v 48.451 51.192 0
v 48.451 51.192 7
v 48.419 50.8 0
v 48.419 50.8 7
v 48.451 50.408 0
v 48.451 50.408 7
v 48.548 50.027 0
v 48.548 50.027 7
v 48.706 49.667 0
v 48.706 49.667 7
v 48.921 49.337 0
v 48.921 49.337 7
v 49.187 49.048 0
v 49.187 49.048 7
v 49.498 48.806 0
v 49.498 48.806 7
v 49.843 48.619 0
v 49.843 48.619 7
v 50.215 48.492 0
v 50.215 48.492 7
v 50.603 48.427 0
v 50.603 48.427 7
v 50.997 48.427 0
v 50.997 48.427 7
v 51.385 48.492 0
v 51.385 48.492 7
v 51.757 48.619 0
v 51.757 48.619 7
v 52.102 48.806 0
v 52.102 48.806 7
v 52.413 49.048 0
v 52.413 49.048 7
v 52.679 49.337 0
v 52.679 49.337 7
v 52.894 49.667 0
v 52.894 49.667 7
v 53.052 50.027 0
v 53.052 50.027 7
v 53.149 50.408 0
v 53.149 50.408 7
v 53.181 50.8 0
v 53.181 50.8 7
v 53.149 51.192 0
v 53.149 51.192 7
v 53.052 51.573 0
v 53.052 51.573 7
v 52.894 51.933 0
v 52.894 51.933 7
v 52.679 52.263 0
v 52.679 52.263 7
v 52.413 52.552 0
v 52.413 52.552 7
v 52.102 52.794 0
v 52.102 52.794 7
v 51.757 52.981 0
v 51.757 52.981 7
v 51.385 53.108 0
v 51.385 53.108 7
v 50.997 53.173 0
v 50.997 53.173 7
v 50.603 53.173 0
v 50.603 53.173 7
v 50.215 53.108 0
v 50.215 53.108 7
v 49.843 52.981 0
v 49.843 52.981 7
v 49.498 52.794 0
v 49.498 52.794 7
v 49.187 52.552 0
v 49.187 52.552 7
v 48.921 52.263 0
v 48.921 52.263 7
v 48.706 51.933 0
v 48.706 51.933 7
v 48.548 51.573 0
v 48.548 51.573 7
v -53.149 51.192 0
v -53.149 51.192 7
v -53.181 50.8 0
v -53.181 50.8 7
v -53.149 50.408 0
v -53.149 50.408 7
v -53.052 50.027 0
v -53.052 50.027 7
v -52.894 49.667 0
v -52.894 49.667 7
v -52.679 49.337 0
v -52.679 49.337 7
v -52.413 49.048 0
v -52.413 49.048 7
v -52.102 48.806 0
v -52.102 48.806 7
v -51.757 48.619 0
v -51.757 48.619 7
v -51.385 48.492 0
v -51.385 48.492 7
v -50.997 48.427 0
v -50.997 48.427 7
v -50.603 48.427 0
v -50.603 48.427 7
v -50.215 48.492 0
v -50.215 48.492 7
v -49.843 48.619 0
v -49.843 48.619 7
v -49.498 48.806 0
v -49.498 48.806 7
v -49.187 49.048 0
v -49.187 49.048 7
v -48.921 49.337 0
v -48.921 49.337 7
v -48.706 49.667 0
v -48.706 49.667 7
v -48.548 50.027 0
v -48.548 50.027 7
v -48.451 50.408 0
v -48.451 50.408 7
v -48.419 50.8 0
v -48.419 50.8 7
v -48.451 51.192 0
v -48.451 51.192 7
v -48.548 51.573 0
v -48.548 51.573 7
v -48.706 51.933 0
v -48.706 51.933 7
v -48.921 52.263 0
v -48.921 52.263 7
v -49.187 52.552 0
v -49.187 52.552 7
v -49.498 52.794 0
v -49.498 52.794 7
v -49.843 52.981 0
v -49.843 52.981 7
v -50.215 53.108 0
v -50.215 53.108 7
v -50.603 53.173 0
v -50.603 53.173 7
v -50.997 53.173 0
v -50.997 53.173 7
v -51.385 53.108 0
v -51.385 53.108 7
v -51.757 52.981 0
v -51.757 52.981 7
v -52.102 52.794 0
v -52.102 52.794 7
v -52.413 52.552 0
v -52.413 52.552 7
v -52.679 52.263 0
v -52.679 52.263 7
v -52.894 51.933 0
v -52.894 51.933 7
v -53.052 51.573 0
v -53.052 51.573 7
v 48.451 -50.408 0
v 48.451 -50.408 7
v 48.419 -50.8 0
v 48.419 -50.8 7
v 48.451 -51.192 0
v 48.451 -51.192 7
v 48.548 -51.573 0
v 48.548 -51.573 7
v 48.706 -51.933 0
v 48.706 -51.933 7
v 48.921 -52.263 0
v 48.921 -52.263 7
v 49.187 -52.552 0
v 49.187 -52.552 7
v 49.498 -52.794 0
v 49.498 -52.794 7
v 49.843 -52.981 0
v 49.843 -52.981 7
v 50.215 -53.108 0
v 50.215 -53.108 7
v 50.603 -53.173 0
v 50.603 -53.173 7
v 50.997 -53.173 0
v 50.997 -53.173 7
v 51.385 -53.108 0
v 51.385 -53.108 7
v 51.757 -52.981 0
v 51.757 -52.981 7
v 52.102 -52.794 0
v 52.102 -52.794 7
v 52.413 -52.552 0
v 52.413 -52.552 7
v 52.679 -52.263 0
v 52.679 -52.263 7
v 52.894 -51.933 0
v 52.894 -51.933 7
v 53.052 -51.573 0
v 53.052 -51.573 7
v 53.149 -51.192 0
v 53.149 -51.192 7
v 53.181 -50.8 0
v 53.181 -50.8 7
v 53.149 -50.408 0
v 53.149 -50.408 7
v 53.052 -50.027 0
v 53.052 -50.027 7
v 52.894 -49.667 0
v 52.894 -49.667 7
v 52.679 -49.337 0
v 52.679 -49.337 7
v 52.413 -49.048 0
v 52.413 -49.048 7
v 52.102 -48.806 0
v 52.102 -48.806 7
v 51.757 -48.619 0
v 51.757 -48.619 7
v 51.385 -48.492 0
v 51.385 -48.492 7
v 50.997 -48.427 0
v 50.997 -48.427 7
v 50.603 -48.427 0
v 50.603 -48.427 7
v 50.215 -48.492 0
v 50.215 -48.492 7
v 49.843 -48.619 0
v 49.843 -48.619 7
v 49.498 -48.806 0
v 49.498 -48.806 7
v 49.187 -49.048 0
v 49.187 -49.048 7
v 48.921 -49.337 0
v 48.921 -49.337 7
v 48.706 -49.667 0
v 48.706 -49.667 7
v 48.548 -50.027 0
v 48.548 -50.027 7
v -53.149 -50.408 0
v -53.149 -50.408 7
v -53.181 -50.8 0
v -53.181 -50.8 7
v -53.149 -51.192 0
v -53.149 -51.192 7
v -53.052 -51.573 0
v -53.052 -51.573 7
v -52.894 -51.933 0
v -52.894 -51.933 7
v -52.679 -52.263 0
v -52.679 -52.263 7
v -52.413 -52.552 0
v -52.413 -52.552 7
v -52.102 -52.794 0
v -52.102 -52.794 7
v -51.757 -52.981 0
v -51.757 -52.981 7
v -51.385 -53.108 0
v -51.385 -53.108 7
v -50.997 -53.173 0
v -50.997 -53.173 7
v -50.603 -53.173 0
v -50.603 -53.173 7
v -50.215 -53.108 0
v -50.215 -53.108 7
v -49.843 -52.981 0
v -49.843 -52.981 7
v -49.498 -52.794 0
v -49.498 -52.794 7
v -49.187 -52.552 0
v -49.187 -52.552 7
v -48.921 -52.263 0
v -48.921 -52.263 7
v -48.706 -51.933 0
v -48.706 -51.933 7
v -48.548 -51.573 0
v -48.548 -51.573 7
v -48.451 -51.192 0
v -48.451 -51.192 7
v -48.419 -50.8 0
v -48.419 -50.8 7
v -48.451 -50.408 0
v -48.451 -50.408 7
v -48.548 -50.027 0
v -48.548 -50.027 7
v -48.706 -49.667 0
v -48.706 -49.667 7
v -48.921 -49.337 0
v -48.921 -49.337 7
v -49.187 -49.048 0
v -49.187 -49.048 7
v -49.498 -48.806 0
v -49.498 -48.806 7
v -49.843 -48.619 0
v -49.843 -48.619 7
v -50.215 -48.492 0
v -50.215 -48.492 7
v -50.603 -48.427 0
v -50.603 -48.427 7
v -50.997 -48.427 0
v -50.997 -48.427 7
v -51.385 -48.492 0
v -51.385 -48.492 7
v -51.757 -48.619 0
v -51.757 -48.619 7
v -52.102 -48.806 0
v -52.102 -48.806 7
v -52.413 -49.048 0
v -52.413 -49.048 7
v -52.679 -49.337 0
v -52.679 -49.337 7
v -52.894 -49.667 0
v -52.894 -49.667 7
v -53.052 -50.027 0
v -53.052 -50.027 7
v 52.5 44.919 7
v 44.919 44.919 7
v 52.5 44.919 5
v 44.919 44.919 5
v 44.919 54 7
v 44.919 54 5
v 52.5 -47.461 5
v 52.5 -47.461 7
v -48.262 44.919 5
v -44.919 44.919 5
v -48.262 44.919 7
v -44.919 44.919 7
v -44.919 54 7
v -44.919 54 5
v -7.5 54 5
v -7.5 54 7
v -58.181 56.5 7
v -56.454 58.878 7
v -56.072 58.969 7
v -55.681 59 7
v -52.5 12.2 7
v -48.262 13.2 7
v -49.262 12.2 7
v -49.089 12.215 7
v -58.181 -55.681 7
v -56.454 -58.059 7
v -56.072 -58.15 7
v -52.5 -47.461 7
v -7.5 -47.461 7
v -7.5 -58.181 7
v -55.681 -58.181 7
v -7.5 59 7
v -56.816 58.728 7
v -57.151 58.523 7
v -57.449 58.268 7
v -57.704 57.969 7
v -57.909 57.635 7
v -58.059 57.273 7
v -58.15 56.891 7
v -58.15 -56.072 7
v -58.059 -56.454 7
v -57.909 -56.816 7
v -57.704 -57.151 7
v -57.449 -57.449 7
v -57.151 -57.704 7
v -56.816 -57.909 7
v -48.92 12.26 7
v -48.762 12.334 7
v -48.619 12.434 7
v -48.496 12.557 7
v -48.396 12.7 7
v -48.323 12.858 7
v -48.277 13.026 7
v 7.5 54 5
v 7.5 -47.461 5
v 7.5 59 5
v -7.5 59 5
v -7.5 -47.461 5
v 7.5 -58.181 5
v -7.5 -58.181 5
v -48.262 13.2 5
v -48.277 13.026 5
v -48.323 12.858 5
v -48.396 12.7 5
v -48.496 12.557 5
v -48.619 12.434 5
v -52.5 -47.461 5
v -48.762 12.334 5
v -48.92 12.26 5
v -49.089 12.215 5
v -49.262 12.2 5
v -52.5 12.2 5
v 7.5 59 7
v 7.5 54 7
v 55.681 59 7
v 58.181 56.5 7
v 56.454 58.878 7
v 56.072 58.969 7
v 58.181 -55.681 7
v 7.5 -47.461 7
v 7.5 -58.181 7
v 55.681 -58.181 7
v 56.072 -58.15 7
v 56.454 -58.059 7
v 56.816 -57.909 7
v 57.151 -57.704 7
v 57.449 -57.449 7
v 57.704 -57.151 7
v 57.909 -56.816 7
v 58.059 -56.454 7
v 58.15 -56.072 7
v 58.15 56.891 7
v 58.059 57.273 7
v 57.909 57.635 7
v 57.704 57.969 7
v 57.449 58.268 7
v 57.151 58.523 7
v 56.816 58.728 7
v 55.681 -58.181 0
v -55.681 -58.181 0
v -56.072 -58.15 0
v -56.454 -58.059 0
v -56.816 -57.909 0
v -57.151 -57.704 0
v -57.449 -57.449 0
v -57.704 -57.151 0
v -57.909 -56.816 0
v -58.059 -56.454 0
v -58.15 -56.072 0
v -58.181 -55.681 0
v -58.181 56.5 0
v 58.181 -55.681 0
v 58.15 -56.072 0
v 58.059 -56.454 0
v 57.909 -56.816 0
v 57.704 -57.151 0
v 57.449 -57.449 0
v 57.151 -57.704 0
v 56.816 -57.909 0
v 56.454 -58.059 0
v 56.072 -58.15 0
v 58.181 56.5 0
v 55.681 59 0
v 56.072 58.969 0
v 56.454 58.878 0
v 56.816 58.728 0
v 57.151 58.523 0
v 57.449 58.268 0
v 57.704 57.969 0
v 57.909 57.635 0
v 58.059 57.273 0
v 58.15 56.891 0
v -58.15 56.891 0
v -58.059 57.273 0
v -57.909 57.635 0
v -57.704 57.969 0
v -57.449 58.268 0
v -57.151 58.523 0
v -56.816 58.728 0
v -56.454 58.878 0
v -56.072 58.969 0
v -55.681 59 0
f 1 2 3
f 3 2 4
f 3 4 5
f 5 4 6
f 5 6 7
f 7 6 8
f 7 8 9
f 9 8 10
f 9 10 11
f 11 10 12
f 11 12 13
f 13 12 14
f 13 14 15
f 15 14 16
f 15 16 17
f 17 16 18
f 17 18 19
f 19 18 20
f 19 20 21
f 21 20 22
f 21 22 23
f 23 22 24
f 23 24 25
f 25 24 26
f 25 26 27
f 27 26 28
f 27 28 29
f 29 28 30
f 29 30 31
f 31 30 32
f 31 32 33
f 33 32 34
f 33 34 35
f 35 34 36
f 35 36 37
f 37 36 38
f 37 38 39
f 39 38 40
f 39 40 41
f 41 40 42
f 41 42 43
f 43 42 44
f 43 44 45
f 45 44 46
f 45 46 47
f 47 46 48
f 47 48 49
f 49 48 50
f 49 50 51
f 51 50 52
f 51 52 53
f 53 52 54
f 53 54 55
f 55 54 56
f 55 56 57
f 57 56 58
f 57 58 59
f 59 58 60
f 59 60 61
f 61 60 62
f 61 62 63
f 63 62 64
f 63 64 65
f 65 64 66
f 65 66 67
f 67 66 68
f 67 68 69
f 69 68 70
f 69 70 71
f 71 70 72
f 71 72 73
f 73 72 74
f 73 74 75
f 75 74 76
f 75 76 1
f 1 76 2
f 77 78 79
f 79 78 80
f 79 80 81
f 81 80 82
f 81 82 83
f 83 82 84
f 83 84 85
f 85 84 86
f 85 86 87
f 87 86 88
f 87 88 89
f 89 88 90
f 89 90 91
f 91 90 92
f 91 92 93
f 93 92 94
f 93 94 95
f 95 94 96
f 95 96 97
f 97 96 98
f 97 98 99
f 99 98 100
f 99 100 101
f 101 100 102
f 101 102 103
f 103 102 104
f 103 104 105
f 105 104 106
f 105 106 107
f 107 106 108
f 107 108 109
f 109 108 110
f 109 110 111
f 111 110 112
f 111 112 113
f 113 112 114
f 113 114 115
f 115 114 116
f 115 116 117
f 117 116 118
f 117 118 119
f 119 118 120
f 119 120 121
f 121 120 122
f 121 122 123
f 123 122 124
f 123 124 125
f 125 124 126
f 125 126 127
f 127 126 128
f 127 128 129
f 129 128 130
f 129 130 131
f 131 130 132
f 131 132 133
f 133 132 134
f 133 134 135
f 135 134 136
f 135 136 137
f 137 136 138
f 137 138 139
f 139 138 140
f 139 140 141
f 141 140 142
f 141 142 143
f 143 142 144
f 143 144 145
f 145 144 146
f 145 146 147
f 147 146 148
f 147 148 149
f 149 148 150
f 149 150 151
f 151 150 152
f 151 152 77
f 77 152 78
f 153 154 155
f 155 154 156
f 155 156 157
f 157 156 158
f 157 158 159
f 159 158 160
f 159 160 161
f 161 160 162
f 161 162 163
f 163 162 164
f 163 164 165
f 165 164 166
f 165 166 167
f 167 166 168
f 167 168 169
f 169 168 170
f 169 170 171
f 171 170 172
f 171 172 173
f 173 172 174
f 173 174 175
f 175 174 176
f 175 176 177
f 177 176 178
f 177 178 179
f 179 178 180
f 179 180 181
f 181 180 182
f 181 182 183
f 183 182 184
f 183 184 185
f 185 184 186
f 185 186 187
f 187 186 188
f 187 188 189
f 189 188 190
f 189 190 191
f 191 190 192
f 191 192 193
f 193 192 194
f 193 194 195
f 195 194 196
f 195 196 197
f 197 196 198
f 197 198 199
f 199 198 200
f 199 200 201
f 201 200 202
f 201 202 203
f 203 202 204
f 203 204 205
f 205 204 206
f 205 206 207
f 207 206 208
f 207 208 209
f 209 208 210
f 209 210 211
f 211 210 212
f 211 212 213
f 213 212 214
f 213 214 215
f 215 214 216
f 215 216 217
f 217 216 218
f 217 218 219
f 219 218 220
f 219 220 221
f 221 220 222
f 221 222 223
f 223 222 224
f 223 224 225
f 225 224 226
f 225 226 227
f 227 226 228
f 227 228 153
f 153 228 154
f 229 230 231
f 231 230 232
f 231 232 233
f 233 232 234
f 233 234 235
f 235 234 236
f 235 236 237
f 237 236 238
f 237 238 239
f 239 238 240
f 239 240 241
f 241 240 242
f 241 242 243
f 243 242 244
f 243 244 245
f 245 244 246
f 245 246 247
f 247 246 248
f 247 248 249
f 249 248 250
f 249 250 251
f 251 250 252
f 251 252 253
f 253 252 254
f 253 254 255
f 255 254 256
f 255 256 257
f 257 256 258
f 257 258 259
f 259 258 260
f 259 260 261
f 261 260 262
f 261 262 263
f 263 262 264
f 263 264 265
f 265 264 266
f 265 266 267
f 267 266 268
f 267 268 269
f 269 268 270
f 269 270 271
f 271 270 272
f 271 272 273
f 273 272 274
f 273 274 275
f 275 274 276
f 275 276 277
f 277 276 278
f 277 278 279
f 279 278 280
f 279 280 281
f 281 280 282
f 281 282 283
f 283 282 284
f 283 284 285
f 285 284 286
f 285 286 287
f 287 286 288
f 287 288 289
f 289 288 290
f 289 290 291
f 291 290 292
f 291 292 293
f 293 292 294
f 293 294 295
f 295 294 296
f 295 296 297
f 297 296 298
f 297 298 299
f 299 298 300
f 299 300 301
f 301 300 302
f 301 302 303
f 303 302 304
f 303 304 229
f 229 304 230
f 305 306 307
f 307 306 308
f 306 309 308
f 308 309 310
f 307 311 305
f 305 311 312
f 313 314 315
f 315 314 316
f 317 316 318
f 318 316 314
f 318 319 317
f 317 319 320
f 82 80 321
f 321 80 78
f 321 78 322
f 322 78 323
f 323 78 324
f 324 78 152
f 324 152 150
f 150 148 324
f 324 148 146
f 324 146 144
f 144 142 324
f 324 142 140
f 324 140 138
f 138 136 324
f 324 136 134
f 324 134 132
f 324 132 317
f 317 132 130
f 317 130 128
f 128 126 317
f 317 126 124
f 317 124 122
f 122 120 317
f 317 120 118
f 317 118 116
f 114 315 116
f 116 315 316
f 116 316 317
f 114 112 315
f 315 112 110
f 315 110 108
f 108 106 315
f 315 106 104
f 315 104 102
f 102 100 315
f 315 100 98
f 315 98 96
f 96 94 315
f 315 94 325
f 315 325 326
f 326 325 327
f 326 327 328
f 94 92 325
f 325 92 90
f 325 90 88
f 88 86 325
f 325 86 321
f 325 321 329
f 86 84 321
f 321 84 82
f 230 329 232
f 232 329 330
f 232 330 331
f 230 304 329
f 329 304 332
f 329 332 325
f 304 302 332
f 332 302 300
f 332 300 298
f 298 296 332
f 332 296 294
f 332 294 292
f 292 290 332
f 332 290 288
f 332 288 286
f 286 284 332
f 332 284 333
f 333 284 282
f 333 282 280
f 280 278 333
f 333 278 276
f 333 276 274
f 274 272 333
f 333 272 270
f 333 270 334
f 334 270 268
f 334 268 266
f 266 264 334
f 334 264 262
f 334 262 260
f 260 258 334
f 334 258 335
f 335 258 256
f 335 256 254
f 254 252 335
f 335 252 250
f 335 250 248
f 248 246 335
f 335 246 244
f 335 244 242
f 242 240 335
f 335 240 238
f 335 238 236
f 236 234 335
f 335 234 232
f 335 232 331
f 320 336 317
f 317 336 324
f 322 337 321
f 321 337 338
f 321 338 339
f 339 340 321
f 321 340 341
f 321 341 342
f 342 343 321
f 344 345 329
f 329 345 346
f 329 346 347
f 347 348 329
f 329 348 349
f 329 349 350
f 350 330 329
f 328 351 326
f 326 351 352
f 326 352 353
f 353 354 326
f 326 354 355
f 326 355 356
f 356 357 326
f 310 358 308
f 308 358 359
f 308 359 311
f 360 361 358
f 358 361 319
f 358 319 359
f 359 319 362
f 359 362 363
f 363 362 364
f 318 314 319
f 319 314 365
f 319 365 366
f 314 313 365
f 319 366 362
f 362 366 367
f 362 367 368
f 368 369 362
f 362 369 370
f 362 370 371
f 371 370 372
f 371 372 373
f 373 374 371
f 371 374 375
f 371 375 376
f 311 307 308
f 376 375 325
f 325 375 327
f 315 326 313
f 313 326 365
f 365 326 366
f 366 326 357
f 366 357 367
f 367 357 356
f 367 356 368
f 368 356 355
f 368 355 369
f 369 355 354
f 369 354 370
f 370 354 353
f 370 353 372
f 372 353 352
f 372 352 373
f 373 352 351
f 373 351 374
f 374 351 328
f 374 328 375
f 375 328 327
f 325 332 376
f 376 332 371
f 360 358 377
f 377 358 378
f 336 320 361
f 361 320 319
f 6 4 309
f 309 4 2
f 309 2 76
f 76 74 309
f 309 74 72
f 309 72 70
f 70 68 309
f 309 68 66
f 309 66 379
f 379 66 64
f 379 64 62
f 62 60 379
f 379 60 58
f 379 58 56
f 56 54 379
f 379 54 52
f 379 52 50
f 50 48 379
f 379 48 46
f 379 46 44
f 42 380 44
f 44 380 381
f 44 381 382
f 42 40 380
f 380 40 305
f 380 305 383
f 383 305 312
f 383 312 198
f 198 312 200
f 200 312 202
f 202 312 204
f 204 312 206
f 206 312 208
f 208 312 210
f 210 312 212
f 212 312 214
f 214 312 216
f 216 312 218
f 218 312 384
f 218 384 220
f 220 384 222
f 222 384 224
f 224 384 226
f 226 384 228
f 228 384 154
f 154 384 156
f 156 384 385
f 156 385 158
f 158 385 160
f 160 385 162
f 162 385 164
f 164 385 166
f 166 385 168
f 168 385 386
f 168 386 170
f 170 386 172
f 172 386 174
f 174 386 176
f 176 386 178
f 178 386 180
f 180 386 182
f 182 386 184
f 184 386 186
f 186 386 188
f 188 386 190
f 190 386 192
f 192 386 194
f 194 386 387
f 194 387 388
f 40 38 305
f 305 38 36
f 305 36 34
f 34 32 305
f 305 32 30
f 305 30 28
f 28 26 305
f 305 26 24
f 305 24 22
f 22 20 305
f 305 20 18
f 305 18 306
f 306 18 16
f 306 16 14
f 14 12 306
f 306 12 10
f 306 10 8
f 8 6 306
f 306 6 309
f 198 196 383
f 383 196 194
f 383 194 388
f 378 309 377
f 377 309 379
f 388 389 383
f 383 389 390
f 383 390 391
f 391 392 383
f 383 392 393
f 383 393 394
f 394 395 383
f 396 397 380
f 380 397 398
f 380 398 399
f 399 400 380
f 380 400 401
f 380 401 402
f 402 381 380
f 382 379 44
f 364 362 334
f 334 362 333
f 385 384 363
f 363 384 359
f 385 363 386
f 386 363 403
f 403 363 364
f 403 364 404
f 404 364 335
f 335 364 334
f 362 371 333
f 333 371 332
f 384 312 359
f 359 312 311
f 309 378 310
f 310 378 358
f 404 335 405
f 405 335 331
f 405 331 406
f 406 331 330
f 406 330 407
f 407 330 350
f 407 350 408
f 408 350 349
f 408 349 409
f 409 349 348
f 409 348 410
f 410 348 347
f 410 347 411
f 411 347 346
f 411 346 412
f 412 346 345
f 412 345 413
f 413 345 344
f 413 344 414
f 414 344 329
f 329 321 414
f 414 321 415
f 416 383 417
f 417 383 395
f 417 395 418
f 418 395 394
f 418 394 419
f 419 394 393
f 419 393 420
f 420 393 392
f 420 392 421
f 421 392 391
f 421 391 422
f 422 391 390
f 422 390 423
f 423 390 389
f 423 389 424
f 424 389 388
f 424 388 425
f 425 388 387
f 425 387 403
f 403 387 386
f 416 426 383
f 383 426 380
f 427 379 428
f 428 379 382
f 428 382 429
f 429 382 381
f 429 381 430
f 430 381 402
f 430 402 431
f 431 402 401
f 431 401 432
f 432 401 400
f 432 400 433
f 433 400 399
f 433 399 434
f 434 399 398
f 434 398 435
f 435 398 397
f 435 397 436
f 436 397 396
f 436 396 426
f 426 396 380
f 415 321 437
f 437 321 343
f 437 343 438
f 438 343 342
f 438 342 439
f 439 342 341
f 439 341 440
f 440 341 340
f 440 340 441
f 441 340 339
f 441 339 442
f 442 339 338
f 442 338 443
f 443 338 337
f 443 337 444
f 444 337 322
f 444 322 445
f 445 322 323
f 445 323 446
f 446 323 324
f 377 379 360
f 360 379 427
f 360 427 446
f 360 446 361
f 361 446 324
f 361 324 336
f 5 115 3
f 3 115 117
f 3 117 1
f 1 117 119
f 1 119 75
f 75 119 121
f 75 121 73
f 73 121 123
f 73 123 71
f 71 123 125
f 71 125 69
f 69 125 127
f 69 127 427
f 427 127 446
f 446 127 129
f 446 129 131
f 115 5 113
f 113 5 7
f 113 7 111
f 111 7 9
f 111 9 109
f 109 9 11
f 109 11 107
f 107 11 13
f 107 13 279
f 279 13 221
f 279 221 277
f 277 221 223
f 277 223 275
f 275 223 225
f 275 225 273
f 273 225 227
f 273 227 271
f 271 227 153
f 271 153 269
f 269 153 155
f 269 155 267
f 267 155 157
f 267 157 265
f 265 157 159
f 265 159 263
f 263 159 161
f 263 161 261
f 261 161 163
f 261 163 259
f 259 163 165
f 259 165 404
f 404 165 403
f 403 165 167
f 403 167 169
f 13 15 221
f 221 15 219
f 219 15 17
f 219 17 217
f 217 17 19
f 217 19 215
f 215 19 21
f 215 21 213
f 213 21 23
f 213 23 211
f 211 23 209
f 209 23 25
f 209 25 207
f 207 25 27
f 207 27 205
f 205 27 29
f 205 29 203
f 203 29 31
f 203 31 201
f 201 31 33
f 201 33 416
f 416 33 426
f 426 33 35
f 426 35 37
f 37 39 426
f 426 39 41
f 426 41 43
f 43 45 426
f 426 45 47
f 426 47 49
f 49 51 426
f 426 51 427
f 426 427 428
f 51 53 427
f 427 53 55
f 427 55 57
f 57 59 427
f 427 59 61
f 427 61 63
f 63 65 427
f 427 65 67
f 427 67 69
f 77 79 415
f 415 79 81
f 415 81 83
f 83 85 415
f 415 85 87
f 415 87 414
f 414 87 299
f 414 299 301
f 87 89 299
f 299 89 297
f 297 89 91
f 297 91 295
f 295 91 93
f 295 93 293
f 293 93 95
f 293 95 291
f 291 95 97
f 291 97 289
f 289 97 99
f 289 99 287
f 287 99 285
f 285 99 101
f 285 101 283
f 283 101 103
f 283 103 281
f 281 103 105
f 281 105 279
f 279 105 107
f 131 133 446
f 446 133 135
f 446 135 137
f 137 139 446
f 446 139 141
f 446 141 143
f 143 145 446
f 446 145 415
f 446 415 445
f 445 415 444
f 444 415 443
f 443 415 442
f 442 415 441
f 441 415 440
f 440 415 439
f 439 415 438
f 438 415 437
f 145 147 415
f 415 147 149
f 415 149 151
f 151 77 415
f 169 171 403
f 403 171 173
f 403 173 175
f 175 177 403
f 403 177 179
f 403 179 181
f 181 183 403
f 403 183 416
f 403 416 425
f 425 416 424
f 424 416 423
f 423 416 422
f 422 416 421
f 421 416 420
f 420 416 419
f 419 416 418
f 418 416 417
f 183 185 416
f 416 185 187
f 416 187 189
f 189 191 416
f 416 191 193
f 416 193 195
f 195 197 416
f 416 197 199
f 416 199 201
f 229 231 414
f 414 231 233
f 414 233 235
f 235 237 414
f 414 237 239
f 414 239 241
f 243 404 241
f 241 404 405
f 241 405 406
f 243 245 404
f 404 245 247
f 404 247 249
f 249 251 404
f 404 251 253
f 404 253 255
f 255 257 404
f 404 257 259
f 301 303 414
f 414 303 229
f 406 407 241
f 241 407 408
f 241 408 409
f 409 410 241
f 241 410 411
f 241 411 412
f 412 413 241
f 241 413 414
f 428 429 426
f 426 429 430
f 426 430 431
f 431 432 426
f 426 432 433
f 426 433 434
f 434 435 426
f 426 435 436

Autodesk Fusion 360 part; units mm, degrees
ref_plane "WorkPlane1" through (0, 0, 7) normal (0, 0, 1) x (1, 0, 0)
sketch "Base Plate Sketch" plane through (0, 0, 0) normal (0, 0, 1) x (1, 0, 0)
  line L0 (-58.1813, -58.1813) -> (58.1813, -58.1813)
  line L1 (58.1813, -58.1813) -> (58.1813, 59)
  line L2 (58.1813, 59) -> (-58.1813, 59)
  line L3 (-58.1813, 59) -> (-58.1813, -58.1813)
extrude "Base Plate" add sketch "Base Plate Sketch" along normal blind 7
fillet "Fillet1" radius 2.5 4 edges at (-58.1813, 59, 3.5) (58.1813, 59, 3.5) (58.1813, -58.1813, 3.5) (-58.1813, -58.1813, 3.5)
sketch "Wafer Nest Pocket Sketch" plane through (0, 0, 7) normal (0, 0, 1) x (1, 0, 0)
  line L0 (-52.5, -47.4607) -> (52.5, -47.4607)
  line L1 (52.5, -47.4607) -> (52.5, 54)
  line L2 (52.5, 54) -> (-52.5, 54)
  line L3 (-52.5, 54) -> (-52.5, -47.4607)
extrude "Wafer Nest Pocket" cut sketch "Wafer Nest Pocket Sketch" against normal blind 2
sketch "Front-Center Access Relief Sketch" plane through (0, 0, 7) normal (0, 0, 1) x (1, 0, 0)
  line L0 (-7.5, -59.1812) -> (7.5, -59.1812)
  line L1 (7.5, -59.1812) -> (7.5, -44.4607)
  line L2 (7.5, -44.4607) -> (-7.5, -44.4607)
  line L3 (-7.5, -44.4607) -> (-7.5, -59.1812)
extrude "Front-Center Access Relief" cut sketch "Front-Center Access Relief Sketch" against normal blind 2
sketch "Rear-Center Access Relief Sketch" plane through (0, 0, 7) normal (0, 0, 1) x (1, 0, 0)
  line L0 (-7.5, 51) -> (7.5, 51)
  line L1 (7.5, 51) -> (7.5, 60)
  line L2 (7.5, 60) -> (-7.5, 60)
  line L3 (-7.5, 60) -> (-7.5, 51)
extrude "Rear-Center Access Relief" cut sketch "Rear-Center Access Relief Sketch" against normal blind 2
sketch "X Datum Square Sketch (165 deg / 9:30)" plane through (0, 0, 7) normal (0, 0, 1) x (1, 0, 0)
  line L0 (-56.2622, 20.1998) -> (-48.2622, 20.1998)
  line L1 (-48.2622, 20.1998) -> (-48.2622, 13.1998)
  arc A0 (-49.2622, 12.1998) -> (-48.2622, 13.1998) centre (-49.2622, 13.1998) ccw
  line L2 (-49.2622, 12.1998) -> (-56.2622, 12.1998)
  line L3 (-56.2622, 12.1998) -> (-56.2622, 20.1998)
extrude "X Datum Square (165 deg / 9:30, rounded corner)" add sketch "X Datum Square Sketch (165 deg / 9:30)" against normal blind 2
sketch "Left Wall Flush Above X-Datum Sketch" plane through (0, 0, 7) normal (0, 0, 1) x (1, 0, 0)
  line L0 (-52.5, 20.1998) -> (-48.2622, 20.1998)
  line L1 (-48.2622, 20.1998) -> (-48.2622, 54)
  line L2 (-48.2622, 54) -> (-52.5, 54)
  line L3 (-52.5, 54) -> (-52.5, 20.1998)
extrude "Left Wall Flush Above X-Datum" add sketch "Left Wall Flush Above X-Datum Sketch" against normal blind 2
sketch "Corner Clip (dowel -50.8, +50.8) Sketch" plane through (0, 0, 7) normal (0, 0, 1) x (1, 0, 0)
  line L0 (-52.5, 44.9187) -> (-44.9187, 44.9187)
  line L1 (-44.9187, 44.9187) -> (-44.9187, 54)
  line L2 (-44.9187, 54) -> (-52.5, 54)
  line L3 (-52.5, 54) -> (-52.5, 44.9187)
extrude "Corner Clip (dowel -50.8, +50.8)" add sketch "Corner Clip (dowel -50.8, +50.8) Sketch" against normal blind 2
sketch "Corner Clip (dowel +50.8, +50.8) Sketch" plane through (0, 0, 7) normal (0, 0, 1) x (1, 0, 0)
  line L0 (44.9187, 44.9187) -> (52.5, 44.9187)
  line L1 (52.5, 44.9187) -> (52.5, 54)
  line L2 (52.5, 54) -> (44.9187, 54)
  line L3 (44.9187, 54) -> (44.9187, 44.9187)
extrude "Corner Clip (dowel +50.8, +50.8)" add sketch "Corner Clip (dowel +50.8, +50.8) Sketch" against normal blind 2
sketch "Outer Front Left Dowel Bore Sketch" plane through (0, 0, 7) normal (0, 0, 1) x (1, 0, 0)
  circle A0 centre (-50.8, -50.8) radius 2.3813
extrude "Outer Front Left Dowel Bore" cut sketch "Outer Front Left Dowel Bore Sketch" against normal blind 7
sketch "Outer Front Right Dowel Bore Sketch" plane through (0, 0, 7) normal (0, 0, 1) x (1, 0, 0)
  circle A0 centre (50.8, -50.8) radius 2.3813
extrude "Outer Front Right Dowel Bore" cut sketch "Outer Front Right Dowel Bore Sketch" against normal blind 7
sketch "Outer Rear Left Dowel Bore Sketch" plane through (0, 0, 7) normal (0, 0, 1) x (1, 0, 0)
  circle A0 centre (-50.8, 50.8) radius 2.3813
extrude "Outer Rear Left Dowel Bore" cut sketch "Outer Rear Left Dowel Bore Sketch" against normal blind 7
sketch "Outer Rear Right Dowel Bore Sketch" plane through (0, 0, 7) normal (0, 0, 1) x (1, 0, 0)
  circle A0 centre (50.8, 50.8) radius 2.3813
extrude "Outer Rear Right Dowel Bore" cut sketch "Outer Rear Right Dowel Bore Sketch" against normal blind 7
equation "gridPitch = 25.4 mm" comment "Table hole-grid pitch"
equation "indexMove = 50.8 mm" comment "Two-grid-space indexing move"
equation "outerPinPatternSpan = 101.6 mm" comment "Four-space outer pin span"
equation "dowelDiameter = 4.7625 mm" comment "3/16 in steel locating dowel diameter"
equation "dowelHoleDiameter = 4.7625 mm" comment "3/16 in reamed dowel bore"
equation "plateEdgeMargin = 5.0 mm" comment "Solid margin, plate edge to nearest feature"
equation "plateWidth = 116.3625 mm" comment "Computed plate width (X)"
equation "plateHeight = 117.18125 mm" comment "Computed plate height (Y)"
equation "baseThickness = 7.0 mm" comment "Base plate thickness"
equation "pocketDepth = 2.0 mm" comment "Wafer-nest pocket depth"
equation "nestClearanceSide = 2.5 mm" comment "Left/right pocket-wall clearance"
equation "nestClearanceRear = 4.0 mm" comment "Rear pocket-wall clearance"
equation "filletRadius = 2.5 mm" comment "Base-plate corner fillet radius"
equation "primaryFlatClearance = 0.175 mm" comment "Front wall forward of nominal flat"
equation "xDatumSize = 8.0 mm" comment "Square X-datum block side"
equation "nestReliefWidth = 15.0 mm" comment "Front/rear access relief width"
equation "nestOffsetX = 0.0 mm" comment "Nest X from pin-square center"
equation "nestOffsetY = 0.0 mm" comment "Nest Y from pin-square center"
